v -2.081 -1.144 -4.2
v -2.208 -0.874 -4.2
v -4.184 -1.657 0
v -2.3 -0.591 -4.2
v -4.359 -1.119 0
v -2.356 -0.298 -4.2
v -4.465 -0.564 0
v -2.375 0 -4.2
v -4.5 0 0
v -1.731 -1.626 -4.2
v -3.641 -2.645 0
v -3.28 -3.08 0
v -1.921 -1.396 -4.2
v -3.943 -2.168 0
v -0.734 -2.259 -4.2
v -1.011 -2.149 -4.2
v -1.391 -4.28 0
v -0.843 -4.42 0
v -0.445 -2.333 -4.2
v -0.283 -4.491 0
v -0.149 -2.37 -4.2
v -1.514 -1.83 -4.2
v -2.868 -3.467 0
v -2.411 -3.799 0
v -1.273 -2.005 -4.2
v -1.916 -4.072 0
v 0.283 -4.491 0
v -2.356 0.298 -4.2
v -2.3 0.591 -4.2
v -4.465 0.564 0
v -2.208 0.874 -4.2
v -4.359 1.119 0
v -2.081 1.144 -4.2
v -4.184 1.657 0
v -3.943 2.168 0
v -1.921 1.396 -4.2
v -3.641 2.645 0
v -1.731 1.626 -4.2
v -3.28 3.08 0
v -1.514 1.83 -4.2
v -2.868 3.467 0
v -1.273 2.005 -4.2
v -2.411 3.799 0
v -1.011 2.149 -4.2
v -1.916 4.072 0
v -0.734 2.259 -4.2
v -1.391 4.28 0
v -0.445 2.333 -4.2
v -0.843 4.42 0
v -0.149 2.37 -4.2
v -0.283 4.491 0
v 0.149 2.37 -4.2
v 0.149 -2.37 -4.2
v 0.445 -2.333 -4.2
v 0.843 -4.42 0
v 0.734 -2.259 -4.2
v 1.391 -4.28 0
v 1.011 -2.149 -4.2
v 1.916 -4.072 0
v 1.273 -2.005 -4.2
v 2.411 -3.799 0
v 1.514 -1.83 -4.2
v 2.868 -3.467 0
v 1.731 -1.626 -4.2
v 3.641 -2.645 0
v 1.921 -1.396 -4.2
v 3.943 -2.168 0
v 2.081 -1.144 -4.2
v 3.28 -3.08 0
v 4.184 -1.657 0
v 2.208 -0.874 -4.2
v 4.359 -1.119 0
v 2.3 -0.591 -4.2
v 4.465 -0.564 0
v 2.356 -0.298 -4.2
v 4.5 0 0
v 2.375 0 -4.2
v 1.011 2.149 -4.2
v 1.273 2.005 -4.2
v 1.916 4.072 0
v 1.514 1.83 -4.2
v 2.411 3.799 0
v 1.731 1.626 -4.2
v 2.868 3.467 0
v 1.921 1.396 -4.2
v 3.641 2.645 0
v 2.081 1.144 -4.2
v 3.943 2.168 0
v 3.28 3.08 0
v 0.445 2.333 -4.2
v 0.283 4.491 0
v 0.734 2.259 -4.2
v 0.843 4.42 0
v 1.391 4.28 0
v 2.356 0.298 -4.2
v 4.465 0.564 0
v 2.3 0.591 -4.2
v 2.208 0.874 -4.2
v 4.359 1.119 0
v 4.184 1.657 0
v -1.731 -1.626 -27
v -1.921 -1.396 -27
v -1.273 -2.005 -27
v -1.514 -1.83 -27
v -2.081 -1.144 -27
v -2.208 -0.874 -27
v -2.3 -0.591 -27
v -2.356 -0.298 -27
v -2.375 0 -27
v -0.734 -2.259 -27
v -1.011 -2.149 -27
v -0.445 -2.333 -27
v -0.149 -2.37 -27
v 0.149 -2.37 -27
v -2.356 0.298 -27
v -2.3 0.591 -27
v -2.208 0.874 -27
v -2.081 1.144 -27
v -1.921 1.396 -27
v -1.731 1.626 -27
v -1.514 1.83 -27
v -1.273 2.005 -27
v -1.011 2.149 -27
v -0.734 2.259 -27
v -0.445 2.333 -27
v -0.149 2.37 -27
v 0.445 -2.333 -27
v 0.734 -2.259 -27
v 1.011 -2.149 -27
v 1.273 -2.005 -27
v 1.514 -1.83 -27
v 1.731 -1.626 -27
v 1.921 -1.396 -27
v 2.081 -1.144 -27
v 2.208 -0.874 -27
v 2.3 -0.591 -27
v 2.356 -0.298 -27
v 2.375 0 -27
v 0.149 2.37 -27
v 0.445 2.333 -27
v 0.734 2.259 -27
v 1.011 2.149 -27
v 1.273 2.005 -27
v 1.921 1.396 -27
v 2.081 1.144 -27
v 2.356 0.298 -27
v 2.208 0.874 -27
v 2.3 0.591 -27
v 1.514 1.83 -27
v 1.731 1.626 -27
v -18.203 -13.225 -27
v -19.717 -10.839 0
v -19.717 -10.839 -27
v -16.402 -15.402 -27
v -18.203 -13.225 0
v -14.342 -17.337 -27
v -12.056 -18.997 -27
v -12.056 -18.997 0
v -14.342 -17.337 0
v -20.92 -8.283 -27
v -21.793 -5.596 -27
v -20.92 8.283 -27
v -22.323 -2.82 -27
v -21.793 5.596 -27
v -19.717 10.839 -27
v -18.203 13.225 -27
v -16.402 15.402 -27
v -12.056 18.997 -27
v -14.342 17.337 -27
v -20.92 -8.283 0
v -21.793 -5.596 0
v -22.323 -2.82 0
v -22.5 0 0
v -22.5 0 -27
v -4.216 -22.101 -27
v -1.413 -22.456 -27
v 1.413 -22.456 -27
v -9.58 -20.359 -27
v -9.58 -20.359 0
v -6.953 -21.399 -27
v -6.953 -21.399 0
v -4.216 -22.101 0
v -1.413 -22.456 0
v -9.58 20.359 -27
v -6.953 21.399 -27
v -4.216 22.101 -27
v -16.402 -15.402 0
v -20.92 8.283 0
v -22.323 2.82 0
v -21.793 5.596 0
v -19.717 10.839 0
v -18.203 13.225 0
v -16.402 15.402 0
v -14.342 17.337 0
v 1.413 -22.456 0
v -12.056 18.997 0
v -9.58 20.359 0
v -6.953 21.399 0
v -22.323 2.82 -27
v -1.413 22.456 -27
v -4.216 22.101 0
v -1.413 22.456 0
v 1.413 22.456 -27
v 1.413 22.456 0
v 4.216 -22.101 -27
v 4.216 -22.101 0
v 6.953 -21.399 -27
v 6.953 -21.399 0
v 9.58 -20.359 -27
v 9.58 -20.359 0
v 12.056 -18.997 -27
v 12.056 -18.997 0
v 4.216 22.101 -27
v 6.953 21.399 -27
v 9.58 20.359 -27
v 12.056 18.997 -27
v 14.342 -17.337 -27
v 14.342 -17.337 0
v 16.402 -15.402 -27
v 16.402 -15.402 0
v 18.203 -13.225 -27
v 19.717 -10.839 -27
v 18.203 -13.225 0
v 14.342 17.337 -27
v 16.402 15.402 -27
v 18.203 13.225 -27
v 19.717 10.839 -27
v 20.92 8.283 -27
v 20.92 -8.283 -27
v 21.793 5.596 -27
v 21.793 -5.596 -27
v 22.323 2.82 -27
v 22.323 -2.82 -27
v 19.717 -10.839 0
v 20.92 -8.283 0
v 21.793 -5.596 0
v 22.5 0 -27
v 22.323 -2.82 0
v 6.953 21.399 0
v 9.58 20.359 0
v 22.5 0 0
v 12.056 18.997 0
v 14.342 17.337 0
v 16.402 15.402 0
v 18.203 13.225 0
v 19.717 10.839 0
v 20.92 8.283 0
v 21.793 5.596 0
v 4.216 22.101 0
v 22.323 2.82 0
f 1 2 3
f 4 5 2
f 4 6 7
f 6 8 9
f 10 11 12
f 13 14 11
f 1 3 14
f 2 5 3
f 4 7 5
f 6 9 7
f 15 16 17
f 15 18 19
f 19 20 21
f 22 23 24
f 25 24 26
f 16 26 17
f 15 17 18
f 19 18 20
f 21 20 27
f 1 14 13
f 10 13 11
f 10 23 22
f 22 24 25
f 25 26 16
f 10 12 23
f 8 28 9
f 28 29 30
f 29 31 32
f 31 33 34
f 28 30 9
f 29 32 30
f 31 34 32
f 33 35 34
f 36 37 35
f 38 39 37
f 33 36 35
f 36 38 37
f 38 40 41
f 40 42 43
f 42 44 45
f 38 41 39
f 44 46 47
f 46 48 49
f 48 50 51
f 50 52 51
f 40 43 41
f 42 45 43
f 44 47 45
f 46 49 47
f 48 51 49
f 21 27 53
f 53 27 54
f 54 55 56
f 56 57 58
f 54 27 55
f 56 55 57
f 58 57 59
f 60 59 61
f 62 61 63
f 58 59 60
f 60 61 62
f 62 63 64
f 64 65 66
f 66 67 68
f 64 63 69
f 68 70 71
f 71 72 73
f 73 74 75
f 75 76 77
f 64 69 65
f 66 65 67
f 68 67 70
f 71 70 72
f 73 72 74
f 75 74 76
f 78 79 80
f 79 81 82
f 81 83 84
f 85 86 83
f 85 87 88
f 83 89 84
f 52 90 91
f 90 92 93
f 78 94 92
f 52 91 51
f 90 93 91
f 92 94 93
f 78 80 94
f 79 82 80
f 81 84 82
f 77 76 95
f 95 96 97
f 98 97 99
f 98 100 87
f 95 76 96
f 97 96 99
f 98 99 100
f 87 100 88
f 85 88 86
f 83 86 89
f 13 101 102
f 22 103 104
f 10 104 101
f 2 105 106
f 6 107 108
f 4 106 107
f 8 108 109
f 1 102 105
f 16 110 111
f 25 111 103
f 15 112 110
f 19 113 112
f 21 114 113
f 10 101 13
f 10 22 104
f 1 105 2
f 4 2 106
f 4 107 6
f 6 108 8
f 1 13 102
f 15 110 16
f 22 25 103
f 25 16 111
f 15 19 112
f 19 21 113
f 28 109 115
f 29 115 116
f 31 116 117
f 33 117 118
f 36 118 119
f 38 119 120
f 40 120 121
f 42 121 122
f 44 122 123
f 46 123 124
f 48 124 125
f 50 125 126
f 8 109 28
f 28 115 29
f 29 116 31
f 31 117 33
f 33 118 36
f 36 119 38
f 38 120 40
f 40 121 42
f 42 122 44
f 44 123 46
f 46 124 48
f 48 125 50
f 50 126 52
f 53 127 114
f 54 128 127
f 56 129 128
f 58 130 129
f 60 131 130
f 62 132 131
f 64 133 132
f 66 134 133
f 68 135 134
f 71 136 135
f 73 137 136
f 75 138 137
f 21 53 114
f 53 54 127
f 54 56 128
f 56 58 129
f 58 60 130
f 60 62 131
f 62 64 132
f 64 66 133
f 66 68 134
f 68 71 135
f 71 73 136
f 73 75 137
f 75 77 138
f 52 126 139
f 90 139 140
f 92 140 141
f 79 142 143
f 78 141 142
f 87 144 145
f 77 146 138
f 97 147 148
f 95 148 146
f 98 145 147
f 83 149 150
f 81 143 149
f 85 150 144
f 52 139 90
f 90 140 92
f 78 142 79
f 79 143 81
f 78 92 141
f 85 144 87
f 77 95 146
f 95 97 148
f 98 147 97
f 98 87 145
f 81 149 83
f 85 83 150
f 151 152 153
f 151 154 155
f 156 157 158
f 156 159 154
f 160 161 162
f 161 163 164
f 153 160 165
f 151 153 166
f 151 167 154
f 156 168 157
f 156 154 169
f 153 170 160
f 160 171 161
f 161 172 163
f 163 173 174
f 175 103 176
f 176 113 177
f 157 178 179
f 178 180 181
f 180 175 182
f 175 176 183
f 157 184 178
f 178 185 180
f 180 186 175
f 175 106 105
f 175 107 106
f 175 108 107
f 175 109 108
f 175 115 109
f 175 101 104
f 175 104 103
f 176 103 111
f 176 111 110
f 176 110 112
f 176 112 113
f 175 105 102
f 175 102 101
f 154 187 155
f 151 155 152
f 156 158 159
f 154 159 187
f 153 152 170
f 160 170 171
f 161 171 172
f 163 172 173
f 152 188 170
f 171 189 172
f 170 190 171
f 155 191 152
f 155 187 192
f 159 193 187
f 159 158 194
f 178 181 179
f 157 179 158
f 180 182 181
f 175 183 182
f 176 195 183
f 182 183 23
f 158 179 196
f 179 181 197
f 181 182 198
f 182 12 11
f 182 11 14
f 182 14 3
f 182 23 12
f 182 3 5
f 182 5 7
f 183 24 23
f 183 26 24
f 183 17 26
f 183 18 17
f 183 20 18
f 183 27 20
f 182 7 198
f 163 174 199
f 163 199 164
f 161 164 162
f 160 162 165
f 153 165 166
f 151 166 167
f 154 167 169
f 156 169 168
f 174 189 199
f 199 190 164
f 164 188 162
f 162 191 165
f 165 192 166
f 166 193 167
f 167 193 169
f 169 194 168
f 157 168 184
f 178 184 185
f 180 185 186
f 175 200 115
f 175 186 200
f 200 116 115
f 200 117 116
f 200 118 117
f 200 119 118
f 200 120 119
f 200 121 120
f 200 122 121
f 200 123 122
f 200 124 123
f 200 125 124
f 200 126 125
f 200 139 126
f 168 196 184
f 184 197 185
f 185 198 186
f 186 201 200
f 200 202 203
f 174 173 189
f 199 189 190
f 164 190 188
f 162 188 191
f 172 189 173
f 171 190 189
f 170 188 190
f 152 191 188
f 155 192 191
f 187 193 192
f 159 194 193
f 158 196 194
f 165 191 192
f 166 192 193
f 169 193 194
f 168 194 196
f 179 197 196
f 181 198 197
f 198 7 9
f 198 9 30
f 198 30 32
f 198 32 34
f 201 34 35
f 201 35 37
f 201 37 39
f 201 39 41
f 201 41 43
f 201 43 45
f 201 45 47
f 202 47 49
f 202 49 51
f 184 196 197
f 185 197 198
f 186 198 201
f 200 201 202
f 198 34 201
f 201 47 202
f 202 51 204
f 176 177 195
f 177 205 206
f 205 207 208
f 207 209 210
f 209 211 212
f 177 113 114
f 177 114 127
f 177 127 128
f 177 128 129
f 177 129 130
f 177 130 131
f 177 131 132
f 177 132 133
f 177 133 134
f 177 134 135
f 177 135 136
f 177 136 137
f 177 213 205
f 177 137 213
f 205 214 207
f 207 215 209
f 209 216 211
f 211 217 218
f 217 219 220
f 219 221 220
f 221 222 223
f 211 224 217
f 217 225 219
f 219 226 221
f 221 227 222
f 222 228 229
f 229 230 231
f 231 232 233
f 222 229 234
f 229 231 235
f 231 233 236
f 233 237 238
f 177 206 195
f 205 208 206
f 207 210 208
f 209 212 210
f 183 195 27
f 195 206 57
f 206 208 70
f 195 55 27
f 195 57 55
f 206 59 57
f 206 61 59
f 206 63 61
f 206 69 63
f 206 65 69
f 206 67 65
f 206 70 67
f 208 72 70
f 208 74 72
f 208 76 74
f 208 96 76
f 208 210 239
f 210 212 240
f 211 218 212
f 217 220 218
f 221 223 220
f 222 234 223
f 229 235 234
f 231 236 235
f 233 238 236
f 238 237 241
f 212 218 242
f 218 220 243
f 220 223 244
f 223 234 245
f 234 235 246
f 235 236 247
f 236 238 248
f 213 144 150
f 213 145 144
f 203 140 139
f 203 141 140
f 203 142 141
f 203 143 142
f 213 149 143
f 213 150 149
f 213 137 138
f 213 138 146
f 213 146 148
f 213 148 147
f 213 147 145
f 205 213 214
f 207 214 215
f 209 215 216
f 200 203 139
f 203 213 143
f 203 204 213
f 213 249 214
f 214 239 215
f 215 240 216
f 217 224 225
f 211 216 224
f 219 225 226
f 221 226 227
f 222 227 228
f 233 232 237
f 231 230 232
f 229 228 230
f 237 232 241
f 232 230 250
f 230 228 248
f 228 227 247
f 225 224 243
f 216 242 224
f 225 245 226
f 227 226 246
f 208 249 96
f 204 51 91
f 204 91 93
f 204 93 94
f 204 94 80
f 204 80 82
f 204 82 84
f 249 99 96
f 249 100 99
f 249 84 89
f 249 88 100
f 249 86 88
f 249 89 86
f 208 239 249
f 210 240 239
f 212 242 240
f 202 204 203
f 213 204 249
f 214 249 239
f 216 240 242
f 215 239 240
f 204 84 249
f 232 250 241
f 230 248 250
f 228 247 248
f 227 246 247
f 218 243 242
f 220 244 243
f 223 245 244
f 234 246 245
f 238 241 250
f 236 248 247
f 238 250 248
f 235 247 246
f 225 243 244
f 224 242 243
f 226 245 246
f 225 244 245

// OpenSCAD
$fn = 50;

difference() {
	union() {
		translate(v = [0, 0, -27.0]) {
			cylinder(h = 27, r = 22.5);
		}
	}
	union() {
		translate(v = [0, 0, 0]) {
			rotate(a = [0, 0, 0]) {
				difference() {
					union() {
						translate(v = [0, 0, -30.0]) {
							cylinder(h = 30, r = 2.25);
						}
						translate(v = [0, 0, -4.2]) {
							cylinder(h = 4.2, r1 = 2.375, r2 = 4.5);
						}
						translate(v = [0, 0, -30.0]) {
							cylinder(h = 30, r = 2.375);
						}
						translate(v = [0, 0, -30.0]) {
							cylinder(h = 30, r = 2.25);
						}
					}
					union();
				}
			}
		}
	}
}
